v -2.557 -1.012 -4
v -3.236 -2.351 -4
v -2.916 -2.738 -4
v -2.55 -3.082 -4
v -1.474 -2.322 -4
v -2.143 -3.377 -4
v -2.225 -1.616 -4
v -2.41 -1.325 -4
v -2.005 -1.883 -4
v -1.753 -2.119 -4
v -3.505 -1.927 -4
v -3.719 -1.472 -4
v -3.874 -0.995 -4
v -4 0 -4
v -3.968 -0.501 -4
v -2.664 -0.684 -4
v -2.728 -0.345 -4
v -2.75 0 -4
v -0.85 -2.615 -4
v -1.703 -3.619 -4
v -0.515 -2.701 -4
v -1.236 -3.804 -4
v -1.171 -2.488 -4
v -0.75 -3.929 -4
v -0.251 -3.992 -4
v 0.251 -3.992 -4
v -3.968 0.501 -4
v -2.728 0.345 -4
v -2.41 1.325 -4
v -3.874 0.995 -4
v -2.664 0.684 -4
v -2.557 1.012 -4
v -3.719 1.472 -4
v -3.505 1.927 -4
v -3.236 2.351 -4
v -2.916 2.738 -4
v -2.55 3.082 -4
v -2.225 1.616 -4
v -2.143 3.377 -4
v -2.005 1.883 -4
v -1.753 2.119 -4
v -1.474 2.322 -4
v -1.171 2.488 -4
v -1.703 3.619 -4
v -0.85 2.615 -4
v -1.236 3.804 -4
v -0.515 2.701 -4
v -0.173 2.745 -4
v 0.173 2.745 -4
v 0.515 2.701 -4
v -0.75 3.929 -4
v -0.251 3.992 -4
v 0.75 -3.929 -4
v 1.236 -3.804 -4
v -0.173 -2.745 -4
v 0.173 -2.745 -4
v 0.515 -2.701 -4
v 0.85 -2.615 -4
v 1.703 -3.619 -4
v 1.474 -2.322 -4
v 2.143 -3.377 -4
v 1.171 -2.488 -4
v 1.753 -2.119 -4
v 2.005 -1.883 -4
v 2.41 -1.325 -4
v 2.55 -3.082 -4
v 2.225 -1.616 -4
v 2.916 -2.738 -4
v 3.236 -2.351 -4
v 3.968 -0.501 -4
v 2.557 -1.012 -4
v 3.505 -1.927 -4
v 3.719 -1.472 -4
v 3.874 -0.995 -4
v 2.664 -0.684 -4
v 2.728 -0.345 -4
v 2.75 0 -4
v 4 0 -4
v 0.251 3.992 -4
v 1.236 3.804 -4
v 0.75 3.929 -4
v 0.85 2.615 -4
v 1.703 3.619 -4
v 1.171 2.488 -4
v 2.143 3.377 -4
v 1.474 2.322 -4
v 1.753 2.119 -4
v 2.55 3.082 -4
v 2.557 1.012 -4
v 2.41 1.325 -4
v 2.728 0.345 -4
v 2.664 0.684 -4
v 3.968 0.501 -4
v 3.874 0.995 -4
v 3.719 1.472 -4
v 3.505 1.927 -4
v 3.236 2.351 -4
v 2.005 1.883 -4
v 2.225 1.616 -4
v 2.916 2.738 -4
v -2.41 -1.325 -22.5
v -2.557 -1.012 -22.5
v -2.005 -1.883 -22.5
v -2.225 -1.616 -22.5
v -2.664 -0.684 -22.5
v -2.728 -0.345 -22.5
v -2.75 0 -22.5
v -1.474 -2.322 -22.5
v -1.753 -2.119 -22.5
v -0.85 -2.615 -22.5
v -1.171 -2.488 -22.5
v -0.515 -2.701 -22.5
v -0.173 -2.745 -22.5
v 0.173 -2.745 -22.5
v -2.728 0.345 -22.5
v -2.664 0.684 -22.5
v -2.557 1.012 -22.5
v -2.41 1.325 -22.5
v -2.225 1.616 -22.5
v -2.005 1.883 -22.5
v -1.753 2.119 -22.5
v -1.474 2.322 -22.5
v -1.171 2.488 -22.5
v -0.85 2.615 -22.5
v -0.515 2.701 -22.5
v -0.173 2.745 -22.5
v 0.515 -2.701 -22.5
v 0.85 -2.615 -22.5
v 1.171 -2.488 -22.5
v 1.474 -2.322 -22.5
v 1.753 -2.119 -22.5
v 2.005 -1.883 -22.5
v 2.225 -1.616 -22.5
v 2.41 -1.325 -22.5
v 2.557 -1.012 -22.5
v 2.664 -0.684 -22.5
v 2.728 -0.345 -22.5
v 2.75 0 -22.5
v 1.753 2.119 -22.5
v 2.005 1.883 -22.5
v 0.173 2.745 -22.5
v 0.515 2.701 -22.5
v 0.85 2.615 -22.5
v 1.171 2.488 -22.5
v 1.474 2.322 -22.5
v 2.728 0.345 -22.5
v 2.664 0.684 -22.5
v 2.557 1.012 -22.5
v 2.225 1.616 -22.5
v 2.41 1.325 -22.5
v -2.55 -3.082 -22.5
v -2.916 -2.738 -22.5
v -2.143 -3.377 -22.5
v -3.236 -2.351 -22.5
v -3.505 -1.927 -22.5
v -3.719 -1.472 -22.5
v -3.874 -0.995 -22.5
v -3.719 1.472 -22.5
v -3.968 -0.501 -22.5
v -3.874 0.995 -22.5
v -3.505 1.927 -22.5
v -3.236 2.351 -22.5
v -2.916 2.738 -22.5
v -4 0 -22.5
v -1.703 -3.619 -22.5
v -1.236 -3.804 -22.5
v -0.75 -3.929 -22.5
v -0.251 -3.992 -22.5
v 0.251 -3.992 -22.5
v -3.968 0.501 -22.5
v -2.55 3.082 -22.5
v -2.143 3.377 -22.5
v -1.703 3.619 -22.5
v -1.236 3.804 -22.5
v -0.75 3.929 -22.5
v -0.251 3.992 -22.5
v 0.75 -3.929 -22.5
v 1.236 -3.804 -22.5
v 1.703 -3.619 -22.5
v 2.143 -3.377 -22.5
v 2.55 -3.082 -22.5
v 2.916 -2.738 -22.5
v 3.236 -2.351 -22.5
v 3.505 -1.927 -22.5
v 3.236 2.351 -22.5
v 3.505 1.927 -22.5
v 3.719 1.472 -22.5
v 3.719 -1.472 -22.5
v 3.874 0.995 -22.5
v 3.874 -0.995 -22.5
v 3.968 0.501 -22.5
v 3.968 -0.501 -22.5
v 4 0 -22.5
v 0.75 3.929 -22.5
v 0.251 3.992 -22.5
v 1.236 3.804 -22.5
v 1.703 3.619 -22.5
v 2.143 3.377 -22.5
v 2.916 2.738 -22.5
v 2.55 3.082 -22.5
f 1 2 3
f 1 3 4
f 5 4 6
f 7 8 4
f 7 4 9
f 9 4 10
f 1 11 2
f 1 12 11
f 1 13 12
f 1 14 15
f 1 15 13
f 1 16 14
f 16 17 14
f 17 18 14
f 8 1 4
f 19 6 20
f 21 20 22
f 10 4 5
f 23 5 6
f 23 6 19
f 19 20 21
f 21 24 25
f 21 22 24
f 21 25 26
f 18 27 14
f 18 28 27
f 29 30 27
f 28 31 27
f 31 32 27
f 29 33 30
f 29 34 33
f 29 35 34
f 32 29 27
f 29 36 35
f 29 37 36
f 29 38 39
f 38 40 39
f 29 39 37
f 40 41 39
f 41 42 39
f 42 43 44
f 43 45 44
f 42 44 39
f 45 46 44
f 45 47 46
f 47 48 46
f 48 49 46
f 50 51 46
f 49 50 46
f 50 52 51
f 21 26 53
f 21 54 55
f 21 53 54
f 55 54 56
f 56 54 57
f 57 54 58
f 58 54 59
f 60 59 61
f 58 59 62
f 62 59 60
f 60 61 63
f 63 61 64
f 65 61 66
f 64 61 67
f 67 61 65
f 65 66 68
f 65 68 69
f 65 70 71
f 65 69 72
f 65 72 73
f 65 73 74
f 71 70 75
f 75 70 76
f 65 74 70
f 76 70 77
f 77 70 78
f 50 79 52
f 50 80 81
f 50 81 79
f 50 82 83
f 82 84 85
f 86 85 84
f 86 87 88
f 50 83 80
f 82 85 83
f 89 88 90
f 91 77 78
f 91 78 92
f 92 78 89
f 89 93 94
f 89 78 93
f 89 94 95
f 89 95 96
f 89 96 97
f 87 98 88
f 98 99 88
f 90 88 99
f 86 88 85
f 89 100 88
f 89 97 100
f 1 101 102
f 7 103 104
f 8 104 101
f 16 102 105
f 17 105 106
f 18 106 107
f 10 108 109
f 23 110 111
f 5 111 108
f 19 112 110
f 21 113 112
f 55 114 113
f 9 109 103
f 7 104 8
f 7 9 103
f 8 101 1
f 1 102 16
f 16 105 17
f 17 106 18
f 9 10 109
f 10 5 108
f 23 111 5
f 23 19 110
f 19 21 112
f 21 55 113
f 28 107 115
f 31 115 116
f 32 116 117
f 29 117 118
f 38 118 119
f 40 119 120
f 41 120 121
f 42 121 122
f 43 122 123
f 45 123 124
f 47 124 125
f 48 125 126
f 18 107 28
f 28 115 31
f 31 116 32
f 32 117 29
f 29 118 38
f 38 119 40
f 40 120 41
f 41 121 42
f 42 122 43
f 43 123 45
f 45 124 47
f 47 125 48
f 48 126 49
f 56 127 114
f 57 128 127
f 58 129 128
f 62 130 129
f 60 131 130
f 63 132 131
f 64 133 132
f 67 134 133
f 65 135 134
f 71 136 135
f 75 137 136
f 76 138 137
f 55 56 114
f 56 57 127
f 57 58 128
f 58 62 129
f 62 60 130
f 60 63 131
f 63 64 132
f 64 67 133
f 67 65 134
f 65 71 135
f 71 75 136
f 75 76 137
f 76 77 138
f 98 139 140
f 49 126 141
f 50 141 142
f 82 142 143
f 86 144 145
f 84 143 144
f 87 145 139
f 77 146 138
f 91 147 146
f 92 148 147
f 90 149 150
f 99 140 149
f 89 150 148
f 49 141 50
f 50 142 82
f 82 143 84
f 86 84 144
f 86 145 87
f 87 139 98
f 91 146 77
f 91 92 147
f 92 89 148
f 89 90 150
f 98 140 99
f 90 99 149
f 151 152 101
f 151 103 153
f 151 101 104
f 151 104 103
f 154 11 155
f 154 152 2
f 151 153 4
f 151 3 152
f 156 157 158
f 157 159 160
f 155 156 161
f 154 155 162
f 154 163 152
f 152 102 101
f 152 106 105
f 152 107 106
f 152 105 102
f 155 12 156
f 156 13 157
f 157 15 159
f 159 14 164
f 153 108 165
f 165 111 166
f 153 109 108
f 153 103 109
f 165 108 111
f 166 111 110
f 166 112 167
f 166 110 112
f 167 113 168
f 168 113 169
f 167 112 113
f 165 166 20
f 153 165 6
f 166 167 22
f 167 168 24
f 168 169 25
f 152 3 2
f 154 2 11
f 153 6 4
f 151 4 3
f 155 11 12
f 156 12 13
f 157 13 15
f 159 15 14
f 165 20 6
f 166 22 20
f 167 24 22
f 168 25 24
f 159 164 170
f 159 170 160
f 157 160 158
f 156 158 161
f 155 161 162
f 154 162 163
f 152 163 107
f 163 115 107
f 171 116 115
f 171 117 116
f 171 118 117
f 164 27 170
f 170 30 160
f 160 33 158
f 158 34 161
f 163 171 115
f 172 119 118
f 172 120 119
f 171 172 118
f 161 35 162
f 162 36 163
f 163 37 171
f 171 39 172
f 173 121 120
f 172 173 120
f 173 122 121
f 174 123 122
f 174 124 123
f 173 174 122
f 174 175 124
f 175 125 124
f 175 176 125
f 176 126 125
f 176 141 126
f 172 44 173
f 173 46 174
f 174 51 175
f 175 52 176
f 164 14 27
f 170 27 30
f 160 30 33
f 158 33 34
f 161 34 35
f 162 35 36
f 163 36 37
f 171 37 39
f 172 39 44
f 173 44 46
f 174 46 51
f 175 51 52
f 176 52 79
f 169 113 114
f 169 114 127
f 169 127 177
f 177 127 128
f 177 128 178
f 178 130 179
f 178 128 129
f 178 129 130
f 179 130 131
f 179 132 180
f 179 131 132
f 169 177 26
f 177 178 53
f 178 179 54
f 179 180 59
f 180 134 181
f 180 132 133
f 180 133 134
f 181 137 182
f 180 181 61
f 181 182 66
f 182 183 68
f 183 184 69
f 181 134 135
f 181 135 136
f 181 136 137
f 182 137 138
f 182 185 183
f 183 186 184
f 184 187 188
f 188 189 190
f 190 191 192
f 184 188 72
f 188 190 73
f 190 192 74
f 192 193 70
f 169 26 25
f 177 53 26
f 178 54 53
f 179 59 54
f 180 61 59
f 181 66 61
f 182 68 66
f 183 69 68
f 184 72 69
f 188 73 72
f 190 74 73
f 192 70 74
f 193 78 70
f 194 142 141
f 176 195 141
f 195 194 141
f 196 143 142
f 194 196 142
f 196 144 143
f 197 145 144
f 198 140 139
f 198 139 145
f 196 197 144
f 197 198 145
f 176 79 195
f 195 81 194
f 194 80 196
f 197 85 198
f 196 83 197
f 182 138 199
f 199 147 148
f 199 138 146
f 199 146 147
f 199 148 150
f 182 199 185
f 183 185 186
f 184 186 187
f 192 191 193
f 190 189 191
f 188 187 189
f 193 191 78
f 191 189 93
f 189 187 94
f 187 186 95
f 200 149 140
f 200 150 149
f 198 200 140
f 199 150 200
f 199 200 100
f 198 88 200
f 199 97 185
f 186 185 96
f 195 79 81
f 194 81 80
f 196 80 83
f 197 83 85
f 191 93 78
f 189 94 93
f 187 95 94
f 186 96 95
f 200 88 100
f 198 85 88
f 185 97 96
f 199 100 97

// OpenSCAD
$fn = 50;

difference() {
	union() {
		translate(v = [0, 0, -22.5]) {
			cylinder(h = 25.5, r = 4.0);
		}
	}
	union() {
		translate(v = [0, 0, 0]) {
			rotate(a = [0, 0, 0]) {
				difference() {
					union() {
						translate(v = [0, 0, -4]) {
							linear_extrude(height = 4) {
								polygon(points = [[4.8468, 0.0], [2.4234000000000004, 4.197451927062417], [-2.423399999999999, 4.197451927062417], [-4.8468, 5.935618106107392e-16], [-2.423400000000002, -4.197451927062416], [2.423399999999997, -4.197451927062419]]);
							}
						}
					}
					union();
				}
			}
		}
		#cylinder(h = 3, r = 6.25);
		#translate(v = [0, 0, -100.0]) {
			cylinder(h = 200, r = 2.75);
		}
	}
}
